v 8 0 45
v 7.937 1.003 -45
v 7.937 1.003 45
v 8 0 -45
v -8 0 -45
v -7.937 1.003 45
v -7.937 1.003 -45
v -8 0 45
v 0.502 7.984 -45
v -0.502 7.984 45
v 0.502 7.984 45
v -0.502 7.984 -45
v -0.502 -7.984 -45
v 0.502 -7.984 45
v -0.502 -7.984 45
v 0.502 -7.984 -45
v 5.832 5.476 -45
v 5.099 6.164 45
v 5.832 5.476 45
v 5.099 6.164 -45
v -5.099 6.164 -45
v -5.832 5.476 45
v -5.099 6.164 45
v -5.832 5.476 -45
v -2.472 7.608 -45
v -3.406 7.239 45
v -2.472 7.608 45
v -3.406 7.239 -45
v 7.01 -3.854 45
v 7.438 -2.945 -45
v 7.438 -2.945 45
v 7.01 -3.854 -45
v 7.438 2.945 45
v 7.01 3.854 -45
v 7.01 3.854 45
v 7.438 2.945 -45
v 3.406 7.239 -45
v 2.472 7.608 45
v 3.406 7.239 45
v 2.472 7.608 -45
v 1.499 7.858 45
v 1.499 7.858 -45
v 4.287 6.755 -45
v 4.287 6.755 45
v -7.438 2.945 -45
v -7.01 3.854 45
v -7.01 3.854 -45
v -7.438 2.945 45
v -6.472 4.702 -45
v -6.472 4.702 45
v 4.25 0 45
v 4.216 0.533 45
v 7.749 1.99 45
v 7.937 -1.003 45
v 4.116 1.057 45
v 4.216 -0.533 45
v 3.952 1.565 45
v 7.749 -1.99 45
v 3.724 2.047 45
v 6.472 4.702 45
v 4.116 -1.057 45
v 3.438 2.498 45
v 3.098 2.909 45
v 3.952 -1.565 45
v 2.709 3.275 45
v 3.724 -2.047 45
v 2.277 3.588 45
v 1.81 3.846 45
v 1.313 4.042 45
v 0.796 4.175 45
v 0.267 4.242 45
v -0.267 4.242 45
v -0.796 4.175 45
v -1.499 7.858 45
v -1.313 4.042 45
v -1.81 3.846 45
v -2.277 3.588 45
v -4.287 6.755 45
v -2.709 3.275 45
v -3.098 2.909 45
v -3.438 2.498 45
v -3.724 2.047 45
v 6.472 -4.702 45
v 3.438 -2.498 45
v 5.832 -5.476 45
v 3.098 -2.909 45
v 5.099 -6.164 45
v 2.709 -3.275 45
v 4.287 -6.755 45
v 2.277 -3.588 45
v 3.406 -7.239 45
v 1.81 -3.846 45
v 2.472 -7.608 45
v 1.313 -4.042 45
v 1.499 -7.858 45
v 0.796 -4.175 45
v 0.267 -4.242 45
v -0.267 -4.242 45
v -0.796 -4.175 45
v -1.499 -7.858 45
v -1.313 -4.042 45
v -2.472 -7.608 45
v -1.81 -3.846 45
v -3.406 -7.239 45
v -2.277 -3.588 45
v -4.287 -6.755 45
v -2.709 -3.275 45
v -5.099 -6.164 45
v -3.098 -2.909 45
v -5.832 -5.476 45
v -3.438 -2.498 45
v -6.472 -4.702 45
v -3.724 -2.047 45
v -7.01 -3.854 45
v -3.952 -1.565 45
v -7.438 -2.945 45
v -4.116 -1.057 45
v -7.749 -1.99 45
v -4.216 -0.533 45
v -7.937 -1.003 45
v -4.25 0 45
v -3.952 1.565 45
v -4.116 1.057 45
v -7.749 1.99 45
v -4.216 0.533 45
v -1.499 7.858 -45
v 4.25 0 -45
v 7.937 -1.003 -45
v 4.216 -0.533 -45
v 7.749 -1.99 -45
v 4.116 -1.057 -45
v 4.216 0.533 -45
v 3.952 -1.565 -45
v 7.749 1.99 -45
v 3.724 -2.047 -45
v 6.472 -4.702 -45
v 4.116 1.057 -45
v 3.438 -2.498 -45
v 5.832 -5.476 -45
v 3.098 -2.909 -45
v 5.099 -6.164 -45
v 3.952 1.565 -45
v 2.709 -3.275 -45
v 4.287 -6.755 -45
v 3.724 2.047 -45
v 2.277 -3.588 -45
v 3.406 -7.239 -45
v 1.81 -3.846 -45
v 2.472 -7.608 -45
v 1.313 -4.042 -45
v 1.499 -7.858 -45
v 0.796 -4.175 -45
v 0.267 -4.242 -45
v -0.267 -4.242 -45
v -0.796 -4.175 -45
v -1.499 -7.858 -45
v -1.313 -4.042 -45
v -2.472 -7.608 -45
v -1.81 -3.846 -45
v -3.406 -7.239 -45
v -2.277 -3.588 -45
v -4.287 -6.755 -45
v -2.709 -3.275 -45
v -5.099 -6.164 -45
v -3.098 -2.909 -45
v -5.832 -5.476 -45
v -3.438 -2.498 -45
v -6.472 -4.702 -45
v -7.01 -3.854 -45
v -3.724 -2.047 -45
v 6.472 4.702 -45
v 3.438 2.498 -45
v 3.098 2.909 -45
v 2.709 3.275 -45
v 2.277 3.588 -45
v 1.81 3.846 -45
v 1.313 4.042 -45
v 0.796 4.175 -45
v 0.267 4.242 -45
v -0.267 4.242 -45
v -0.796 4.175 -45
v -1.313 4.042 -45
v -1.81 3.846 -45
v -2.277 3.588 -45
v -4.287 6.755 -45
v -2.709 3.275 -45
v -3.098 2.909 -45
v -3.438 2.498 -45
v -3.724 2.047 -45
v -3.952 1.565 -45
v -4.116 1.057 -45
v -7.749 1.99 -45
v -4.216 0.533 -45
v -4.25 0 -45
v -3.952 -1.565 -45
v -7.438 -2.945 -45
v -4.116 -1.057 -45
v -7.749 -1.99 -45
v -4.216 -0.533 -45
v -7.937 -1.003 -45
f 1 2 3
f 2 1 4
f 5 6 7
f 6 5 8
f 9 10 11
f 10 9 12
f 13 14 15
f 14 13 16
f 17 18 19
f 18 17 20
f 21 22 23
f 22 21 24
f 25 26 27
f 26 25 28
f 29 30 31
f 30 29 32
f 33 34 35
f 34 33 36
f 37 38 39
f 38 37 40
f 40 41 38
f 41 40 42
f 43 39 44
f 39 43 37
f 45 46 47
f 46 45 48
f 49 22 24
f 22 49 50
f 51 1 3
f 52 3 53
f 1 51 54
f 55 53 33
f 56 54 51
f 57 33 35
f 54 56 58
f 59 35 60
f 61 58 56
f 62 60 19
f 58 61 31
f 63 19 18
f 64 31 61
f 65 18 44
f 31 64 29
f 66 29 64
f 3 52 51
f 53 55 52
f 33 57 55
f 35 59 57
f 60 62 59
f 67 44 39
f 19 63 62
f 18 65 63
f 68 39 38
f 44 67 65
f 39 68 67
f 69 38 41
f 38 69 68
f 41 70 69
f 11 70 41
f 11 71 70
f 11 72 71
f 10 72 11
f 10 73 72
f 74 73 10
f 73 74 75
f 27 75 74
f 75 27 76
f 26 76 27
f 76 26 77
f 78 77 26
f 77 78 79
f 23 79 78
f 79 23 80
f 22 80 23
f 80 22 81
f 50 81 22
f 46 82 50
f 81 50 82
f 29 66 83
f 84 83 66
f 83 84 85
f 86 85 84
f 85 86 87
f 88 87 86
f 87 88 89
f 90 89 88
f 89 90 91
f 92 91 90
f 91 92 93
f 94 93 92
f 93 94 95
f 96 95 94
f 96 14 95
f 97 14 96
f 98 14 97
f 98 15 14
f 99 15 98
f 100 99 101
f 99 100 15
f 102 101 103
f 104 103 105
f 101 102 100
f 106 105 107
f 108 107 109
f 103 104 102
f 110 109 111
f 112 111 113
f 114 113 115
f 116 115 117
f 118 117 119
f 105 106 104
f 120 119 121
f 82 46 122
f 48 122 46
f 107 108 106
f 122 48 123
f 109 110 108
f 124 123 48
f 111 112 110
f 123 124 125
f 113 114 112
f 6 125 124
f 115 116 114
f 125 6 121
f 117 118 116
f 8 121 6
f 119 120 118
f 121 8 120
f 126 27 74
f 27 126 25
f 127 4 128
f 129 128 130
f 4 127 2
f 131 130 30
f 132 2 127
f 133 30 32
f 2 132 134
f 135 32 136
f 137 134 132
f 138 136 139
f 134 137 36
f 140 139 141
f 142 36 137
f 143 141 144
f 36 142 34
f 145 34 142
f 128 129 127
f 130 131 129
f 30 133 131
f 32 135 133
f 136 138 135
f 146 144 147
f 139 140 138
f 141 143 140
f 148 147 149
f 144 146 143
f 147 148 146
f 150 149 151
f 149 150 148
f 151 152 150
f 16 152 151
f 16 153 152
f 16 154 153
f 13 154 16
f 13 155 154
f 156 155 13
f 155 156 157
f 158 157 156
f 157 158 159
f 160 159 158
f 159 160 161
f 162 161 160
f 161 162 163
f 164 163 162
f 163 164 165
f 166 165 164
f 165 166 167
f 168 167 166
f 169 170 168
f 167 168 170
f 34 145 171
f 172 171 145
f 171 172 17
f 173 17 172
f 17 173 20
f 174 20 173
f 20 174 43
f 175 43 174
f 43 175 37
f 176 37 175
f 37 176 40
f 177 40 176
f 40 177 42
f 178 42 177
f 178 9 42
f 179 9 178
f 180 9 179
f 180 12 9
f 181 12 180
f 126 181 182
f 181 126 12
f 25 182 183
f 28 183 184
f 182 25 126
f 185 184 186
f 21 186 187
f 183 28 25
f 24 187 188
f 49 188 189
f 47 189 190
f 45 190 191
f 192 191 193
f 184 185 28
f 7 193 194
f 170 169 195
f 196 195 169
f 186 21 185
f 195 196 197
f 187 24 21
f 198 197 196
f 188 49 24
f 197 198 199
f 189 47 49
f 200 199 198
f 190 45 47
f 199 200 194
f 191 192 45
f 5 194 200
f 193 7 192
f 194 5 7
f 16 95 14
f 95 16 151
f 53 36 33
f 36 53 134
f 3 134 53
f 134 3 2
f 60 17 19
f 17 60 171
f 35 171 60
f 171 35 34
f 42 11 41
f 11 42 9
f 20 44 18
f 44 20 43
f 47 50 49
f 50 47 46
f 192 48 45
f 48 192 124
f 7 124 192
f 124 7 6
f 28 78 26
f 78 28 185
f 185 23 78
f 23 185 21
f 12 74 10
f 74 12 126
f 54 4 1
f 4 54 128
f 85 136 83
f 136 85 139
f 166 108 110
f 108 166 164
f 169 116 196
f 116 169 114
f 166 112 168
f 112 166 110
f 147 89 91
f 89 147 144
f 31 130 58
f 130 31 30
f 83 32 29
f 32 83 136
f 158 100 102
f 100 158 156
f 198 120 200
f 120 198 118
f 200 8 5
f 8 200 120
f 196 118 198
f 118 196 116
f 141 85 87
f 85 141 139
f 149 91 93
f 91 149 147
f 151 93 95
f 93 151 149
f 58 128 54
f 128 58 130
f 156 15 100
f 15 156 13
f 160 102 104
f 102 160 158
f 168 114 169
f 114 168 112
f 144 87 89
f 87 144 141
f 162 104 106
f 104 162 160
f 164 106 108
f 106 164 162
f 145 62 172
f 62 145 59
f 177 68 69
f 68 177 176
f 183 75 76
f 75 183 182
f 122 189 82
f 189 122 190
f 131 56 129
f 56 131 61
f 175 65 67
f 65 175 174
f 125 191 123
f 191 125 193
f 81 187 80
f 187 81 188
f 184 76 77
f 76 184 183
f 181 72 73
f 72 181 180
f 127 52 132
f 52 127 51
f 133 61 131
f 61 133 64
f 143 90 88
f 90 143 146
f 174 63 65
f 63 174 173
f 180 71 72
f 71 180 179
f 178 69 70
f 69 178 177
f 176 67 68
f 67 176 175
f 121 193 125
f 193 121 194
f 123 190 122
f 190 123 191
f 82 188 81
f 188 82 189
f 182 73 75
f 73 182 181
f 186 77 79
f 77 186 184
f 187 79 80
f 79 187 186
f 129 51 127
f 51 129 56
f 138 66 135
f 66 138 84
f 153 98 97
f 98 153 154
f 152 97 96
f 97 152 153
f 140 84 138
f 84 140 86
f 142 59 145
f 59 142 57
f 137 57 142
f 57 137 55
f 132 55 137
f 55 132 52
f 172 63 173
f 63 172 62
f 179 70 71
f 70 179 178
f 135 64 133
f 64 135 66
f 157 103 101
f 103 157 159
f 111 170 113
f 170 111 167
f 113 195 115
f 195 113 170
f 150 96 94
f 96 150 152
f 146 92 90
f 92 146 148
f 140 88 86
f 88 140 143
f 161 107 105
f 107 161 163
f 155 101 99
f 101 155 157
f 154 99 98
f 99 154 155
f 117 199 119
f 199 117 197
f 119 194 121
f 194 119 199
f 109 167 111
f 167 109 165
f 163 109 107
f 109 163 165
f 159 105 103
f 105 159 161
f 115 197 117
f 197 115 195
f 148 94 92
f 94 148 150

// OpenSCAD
$fn = 50;


difference() {
	union() {
		translate(v = [0, 0, -45.0000000000]) {
			cylinder(h = 90, r = 8.0000000000);
		}
	}
	union() {
		translate(v = [0, 0, -100.0000000000]) {
			cylinder(h = 200, r = 4.2500000000);
		}
	}
}
